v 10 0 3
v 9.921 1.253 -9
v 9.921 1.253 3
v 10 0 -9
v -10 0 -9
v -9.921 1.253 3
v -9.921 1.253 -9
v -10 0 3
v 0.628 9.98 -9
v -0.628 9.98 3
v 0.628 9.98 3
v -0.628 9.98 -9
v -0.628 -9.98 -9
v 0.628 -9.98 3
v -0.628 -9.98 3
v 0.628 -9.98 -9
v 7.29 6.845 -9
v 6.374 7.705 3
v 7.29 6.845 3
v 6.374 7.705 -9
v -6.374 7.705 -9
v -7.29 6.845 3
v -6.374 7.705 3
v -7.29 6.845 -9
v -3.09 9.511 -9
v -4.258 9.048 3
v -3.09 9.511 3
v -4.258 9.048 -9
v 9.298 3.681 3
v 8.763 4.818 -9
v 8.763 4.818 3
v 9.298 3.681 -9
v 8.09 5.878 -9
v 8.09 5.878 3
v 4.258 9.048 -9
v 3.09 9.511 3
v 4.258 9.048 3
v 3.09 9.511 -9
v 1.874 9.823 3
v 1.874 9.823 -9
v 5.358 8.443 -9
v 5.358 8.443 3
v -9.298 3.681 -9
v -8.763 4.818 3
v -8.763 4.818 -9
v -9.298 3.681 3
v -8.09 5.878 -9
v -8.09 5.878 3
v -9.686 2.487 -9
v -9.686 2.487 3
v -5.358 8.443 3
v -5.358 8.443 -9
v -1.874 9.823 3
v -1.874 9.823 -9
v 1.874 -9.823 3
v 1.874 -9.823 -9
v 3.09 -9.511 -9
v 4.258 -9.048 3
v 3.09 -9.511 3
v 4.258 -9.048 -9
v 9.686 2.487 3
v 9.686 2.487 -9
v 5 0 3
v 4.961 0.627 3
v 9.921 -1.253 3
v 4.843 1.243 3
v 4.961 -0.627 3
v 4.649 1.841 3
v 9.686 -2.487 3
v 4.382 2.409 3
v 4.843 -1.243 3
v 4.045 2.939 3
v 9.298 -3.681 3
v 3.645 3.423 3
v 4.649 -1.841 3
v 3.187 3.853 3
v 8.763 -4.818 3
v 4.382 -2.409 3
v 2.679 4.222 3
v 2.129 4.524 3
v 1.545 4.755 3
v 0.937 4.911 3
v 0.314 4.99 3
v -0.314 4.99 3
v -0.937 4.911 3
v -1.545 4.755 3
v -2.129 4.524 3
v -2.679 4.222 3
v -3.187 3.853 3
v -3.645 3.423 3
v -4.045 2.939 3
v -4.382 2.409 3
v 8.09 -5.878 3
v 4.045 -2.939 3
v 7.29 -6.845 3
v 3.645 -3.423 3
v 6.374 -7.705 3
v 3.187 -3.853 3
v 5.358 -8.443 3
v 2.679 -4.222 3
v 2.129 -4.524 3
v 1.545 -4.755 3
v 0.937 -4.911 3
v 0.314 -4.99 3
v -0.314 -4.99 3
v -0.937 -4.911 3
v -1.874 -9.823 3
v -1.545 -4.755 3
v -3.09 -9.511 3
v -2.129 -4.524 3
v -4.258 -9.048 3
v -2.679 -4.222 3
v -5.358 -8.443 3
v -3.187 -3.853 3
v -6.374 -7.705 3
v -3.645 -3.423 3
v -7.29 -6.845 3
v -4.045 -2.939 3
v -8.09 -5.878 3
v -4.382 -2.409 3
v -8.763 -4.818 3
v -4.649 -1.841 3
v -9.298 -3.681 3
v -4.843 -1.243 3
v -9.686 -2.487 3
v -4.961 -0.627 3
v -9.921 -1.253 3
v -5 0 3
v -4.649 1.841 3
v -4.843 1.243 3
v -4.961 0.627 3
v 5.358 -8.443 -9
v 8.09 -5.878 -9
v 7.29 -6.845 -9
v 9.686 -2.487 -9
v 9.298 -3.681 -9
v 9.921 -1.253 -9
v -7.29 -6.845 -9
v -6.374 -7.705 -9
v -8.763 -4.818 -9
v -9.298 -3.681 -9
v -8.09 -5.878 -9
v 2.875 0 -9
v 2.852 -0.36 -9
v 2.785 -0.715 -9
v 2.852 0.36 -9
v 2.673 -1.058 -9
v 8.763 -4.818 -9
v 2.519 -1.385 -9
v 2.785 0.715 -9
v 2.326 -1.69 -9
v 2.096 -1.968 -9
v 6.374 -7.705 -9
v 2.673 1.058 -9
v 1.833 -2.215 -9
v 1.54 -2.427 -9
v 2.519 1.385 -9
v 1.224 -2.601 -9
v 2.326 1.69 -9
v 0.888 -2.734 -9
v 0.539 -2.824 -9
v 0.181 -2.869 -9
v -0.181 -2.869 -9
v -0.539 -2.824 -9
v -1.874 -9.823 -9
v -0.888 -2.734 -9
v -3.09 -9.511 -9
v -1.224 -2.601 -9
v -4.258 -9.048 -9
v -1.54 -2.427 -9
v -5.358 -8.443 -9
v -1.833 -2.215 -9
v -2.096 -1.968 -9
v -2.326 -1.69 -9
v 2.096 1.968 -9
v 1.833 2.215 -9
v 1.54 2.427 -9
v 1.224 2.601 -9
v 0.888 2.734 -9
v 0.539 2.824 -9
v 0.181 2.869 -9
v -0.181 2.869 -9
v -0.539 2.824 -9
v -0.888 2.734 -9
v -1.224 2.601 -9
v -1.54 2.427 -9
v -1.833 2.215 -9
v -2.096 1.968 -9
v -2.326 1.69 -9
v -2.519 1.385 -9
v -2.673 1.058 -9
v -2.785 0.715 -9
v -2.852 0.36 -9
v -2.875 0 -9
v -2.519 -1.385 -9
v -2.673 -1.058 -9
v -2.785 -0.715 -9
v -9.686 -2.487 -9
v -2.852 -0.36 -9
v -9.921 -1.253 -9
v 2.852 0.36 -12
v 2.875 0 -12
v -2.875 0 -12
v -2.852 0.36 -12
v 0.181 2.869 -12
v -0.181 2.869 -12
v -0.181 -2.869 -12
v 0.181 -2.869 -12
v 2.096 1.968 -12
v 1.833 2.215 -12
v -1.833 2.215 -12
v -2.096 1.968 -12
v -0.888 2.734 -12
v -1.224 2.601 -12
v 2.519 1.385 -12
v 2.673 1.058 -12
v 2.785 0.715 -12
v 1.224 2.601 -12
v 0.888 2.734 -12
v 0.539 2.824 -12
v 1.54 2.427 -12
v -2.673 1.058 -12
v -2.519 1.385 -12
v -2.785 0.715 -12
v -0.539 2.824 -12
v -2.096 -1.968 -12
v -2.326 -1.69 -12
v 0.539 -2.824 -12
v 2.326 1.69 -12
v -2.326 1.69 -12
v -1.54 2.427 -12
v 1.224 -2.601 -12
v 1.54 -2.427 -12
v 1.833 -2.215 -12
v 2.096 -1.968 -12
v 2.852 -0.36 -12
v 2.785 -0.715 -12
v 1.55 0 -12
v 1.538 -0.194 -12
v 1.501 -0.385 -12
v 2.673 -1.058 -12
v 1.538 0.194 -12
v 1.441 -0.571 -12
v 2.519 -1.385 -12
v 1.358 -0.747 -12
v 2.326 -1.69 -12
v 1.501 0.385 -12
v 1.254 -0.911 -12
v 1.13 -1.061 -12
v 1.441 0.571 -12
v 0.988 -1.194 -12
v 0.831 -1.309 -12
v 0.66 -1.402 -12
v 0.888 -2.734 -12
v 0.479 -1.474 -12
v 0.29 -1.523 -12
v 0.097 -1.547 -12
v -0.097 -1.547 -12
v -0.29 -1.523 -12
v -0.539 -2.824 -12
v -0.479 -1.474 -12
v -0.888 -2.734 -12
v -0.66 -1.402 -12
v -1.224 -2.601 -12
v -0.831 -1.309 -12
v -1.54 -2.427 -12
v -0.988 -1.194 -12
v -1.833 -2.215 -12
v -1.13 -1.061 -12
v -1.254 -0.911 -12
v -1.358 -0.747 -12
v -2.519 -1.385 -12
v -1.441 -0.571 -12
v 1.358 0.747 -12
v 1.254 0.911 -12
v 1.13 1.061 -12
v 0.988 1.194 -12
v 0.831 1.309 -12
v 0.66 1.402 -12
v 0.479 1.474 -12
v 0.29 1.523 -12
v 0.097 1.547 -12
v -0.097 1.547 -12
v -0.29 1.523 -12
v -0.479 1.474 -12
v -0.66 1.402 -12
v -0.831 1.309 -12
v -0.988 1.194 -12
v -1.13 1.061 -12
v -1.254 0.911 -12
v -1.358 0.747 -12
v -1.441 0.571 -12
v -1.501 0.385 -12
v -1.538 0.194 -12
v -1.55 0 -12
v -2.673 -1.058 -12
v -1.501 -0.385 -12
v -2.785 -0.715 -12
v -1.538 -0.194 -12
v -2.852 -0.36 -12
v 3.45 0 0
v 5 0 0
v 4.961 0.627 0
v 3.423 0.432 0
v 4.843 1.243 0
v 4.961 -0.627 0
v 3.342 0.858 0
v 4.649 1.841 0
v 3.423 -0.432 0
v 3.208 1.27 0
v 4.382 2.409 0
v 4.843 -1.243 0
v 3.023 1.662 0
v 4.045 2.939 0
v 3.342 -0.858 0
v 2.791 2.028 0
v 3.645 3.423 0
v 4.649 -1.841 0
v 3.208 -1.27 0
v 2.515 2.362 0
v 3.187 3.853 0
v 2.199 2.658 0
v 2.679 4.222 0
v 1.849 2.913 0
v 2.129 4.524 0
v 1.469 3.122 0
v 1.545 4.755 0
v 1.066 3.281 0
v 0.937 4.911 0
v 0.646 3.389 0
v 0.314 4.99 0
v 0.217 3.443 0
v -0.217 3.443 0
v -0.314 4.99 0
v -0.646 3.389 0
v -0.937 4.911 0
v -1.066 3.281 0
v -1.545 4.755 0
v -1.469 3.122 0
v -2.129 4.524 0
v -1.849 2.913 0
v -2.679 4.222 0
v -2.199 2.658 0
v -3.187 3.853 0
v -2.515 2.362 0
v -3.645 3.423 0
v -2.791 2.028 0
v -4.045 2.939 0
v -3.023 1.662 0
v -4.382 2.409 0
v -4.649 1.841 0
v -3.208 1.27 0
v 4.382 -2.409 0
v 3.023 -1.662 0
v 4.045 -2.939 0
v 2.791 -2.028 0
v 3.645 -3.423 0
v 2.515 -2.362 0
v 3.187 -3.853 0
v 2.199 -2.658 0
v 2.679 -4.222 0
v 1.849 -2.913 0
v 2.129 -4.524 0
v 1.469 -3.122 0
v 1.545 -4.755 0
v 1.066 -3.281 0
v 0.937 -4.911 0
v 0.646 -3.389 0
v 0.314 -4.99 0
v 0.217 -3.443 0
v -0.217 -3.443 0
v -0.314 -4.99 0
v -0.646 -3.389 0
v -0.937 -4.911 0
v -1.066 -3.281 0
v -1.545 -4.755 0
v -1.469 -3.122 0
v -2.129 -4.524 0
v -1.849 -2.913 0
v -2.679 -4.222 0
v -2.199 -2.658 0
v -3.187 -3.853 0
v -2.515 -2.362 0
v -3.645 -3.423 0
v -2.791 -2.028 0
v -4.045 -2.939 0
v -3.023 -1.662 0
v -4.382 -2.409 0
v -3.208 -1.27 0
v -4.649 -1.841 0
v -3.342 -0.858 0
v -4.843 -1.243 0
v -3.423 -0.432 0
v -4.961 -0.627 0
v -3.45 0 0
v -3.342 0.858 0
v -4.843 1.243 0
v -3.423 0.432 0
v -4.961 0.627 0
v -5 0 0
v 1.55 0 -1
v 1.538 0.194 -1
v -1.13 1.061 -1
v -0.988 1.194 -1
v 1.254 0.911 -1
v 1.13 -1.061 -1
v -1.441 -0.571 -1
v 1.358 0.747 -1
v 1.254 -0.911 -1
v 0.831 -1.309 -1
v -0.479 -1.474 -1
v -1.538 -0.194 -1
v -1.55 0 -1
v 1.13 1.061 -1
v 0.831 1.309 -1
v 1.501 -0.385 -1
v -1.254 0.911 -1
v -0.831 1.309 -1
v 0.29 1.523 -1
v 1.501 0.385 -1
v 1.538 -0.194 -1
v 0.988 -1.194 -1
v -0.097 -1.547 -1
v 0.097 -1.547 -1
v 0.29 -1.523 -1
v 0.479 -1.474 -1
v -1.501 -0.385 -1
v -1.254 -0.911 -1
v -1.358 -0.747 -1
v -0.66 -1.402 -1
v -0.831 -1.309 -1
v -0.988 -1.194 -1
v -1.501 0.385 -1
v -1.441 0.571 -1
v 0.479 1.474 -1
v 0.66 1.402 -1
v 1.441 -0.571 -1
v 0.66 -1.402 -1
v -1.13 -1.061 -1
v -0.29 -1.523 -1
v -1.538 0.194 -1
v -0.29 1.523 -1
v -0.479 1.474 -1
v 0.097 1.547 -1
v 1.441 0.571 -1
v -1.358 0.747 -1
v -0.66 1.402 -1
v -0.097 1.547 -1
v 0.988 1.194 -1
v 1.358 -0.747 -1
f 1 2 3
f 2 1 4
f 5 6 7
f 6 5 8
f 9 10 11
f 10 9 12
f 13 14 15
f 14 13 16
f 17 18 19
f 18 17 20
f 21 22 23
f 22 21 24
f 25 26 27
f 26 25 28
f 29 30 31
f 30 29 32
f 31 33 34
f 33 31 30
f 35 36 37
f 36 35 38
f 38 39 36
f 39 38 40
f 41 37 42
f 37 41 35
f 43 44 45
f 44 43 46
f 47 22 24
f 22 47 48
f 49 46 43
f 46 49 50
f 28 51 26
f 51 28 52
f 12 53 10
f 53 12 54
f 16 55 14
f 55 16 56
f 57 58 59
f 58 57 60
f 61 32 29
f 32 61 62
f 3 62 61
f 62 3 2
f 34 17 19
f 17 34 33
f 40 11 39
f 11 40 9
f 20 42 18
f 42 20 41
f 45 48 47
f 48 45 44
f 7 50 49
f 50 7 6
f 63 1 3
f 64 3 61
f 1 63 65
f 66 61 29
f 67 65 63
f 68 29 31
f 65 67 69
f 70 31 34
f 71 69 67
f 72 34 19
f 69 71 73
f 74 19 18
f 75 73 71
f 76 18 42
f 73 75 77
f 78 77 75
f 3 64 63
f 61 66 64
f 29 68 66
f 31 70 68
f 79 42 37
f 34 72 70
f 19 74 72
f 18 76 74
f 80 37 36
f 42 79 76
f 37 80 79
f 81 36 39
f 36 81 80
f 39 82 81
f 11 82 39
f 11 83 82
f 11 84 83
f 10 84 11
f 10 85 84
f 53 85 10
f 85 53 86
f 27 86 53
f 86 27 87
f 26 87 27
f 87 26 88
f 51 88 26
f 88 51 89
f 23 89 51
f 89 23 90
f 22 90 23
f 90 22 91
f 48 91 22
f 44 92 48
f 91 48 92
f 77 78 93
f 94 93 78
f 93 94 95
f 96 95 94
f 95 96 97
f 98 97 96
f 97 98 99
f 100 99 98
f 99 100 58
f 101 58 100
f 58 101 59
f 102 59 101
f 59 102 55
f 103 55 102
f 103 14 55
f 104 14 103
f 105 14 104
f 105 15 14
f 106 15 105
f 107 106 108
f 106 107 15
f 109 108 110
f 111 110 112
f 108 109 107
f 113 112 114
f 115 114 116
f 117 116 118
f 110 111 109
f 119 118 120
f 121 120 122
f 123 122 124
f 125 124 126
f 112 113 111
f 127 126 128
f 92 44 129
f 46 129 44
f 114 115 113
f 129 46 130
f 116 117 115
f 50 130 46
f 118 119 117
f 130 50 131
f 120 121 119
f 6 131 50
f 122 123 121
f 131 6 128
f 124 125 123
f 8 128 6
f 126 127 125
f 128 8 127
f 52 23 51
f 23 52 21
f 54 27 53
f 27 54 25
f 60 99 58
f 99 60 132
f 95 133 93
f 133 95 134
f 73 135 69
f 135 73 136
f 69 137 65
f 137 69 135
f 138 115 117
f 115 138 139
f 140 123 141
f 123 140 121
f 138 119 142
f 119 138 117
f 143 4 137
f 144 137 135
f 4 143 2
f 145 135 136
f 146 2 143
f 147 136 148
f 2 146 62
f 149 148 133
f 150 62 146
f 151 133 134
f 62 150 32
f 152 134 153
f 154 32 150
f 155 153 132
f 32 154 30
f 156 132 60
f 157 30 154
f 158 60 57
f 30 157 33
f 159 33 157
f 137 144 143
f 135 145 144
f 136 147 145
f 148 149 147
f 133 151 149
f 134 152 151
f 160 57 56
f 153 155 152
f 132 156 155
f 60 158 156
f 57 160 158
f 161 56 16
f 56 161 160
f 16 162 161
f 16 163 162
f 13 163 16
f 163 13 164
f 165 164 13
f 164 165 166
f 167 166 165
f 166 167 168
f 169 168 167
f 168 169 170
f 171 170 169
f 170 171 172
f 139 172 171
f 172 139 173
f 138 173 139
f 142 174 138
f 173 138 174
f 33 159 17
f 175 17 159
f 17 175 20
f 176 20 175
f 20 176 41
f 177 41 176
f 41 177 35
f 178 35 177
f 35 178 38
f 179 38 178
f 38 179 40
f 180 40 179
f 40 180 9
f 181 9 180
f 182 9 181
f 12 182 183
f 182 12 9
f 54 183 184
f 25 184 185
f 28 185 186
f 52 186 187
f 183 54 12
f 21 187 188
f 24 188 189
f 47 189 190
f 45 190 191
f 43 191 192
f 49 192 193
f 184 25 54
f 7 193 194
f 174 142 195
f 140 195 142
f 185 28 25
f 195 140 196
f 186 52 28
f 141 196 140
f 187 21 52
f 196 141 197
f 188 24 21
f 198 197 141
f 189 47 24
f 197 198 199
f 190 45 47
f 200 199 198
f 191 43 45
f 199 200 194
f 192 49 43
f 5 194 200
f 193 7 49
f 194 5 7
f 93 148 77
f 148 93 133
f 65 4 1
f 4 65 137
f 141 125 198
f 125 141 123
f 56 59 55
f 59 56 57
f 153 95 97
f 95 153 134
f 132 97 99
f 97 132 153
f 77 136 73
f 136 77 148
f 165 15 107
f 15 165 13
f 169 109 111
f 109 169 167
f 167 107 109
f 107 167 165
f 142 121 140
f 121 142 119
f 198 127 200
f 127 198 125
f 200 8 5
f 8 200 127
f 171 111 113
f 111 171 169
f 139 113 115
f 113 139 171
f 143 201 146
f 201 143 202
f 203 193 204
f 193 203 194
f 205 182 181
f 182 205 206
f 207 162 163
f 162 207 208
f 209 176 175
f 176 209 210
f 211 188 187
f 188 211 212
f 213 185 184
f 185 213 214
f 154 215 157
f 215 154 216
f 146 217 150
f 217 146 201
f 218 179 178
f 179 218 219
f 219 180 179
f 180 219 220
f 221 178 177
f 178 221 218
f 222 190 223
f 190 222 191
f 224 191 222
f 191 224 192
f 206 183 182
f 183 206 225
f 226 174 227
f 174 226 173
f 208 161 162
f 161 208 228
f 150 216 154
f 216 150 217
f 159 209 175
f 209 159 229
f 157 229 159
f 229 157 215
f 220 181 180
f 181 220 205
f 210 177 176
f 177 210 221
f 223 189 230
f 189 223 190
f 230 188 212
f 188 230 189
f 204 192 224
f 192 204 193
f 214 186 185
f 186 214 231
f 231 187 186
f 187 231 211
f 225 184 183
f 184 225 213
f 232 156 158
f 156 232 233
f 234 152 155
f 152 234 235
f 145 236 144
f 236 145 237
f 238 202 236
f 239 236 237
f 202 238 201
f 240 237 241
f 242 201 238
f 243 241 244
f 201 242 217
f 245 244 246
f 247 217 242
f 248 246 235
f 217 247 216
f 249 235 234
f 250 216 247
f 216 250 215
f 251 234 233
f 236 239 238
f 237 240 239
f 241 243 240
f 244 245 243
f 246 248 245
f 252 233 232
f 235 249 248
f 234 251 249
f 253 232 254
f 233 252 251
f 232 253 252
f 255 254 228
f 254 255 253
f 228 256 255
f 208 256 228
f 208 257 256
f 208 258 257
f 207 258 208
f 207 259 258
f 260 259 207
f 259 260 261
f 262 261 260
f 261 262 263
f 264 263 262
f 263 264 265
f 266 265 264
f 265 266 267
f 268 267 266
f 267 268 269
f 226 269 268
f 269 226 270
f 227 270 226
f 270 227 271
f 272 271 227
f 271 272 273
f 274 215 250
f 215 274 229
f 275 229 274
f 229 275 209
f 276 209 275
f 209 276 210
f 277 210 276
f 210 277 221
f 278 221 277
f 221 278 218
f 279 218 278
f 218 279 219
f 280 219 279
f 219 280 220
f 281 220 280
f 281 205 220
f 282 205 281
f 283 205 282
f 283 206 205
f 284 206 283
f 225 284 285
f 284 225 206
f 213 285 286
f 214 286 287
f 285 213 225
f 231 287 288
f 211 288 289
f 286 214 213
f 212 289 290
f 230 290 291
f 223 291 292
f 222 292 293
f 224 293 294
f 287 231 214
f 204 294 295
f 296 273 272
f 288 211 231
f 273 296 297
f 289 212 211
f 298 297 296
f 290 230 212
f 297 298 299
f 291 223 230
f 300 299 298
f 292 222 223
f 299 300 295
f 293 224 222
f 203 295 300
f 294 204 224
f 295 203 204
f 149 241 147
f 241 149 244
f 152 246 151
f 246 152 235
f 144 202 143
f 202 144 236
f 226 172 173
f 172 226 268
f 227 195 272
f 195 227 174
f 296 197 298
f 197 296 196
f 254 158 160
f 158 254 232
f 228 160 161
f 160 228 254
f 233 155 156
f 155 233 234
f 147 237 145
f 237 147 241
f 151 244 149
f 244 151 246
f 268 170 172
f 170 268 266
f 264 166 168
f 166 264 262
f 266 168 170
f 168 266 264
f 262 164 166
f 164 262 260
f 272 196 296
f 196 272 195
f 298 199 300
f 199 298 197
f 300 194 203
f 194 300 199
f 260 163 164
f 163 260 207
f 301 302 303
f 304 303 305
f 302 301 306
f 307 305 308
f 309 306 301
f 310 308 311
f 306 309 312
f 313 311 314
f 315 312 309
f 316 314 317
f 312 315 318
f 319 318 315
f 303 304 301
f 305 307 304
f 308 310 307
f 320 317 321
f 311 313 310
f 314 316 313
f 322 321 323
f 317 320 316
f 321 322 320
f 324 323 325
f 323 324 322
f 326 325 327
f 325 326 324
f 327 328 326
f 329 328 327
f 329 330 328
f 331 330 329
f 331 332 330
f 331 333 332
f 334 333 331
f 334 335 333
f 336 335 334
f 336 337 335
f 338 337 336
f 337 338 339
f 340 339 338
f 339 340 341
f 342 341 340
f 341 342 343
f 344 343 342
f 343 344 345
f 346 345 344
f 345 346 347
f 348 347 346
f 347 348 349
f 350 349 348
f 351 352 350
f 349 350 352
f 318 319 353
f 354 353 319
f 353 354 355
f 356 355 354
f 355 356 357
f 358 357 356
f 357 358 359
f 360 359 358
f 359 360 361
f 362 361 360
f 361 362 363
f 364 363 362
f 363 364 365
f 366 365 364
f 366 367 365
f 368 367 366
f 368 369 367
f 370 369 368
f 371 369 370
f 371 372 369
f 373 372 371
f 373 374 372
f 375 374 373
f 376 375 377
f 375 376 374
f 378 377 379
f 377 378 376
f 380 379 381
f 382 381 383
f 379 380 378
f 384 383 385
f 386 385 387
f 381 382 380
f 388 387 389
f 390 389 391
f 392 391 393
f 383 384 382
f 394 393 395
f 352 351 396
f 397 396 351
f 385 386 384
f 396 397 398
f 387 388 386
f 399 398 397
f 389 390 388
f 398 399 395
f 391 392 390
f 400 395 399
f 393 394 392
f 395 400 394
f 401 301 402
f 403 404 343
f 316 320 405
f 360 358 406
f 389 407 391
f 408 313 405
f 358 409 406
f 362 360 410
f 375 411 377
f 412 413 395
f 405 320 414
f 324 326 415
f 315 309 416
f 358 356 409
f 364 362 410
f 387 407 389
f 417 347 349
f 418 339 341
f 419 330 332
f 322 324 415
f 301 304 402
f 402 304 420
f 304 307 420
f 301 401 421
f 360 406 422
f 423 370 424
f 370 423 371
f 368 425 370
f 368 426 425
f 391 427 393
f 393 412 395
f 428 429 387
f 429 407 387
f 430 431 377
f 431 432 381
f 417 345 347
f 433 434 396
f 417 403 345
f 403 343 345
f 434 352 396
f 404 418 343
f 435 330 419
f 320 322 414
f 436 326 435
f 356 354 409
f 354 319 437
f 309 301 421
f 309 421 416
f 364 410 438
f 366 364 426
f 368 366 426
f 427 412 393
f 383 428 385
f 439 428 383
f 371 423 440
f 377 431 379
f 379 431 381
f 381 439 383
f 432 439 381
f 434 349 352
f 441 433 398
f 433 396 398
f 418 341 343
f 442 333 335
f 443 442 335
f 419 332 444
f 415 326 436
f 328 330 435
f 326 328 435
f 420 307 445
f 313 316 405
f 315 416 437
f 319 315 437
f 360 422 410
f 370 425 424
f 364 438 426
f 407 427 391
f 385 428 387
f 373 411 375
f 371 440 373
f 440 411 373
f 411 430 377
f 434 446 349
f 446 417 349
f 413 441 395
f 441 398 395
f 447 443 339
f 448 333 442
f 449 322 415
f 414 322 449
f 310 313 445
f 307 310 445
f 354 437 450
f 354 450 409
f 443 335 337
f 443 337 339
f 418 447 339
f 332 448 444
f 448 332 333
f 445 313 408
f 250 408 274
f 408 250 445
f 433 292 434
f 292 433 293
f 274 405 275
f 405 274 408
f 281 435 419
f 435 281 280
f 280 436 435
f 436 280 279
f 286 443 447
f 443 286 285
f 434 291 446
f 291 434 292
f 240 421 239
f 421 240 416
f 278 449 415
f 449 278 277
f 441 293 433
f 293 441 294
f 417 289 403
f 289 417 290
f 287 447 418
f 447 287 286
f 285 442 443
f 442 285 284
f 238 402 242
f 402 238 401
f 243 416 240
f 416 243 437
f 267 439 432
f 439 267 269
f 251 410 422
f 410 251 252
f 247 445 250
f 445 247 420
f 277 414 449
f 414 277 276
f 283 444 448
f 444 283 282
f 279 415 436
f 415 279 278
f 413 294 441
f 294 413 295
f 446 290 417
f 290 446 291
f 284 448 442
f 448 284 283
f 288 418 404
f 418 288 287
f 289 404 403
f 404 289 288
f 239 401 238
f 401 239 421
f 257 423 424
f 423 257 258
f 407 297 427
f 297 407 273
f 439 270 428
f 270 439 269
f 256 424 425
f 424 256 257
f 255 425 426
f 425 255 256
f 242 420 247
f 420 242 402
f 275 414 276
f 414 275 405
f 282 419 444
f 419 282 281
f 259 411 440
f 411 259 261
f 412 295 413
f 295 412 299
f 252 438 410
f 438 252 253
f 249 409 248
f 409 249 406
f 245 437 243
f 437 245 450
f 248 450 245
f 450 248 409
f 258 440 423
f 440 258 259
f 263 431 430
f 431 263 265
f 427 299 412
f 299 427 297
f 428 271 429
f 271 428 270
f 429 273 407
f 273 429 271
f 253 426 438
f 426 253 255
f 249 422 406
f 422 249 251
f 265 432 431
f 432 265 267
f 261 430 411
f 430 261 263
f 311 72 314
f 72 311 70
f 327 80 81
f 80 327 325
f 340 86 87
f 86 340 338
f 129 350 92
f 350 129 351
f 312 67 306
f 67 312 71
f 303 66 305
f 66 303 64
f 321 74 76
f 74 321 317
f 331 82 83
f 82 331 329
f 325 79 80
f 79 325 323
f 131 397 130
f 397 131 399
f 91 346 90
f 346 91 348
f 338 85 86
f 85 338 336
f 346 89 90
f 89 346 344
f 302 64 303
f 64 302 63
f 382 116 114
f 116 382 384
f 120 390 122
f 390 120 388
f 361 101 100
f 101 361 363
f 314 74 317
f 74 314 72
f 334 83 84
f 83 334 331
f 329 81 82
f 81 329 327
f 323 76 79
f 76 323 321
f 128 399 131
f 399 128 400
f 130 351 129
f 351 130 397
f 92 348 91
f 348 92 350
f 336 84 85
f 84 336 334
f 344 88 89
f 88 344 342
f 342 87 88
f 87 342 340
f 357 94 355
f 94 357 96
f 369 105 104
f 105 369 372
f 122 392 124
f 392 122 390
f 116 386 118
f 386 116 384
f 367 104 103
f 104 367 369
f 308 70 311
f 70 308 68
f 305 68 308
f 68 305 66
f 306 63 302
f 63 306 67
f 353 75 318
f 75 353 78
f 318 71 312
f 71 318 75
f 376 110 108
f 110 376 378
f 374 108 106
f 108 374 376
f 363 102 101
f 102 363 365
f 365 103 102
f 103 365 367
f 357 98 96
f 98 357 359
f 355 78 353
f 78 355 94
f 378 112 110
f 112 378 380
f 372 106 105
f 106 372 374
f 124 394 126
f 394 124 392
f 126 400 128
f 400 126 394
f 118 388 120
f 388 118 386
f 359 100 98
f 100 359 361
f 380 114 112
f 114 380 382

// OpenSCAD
$fn = 50;

difference() {
	union() {
		translate(v = [0, 0, -9.0]) {
			cylinder(h = 12, r = 10.0);
		}
		#translate(v = [0, 0, -12.0]) {
			cylinder(h = 12, r = 2.875);
		}
	}
	union() {
		translate(v = [0, 0, 0]) {
			rotate(a = [0, 0, 0]) {
				difference() {
					union() {
						translate(v = [0, 0, -12.0]) {
							cylinder(h = 12, r = 1.25);
						}
						translate(v = [0, 0, -1.0]) {
							cylinder(h = 1.0, r1 = 1.55, r2 = 3.45);
						}
						translate(v = [0, 0, -12.0]) {
							cylinder(h = 12, r = 1.55);
						}
						translate(v = [0, 0, -12.0]) {
							cylinder(h = 12, r = 1.25);
						}
					}
					union();
				}
			}
		}
		#cylinder(h = 3, r = 5.0);
	}
}
